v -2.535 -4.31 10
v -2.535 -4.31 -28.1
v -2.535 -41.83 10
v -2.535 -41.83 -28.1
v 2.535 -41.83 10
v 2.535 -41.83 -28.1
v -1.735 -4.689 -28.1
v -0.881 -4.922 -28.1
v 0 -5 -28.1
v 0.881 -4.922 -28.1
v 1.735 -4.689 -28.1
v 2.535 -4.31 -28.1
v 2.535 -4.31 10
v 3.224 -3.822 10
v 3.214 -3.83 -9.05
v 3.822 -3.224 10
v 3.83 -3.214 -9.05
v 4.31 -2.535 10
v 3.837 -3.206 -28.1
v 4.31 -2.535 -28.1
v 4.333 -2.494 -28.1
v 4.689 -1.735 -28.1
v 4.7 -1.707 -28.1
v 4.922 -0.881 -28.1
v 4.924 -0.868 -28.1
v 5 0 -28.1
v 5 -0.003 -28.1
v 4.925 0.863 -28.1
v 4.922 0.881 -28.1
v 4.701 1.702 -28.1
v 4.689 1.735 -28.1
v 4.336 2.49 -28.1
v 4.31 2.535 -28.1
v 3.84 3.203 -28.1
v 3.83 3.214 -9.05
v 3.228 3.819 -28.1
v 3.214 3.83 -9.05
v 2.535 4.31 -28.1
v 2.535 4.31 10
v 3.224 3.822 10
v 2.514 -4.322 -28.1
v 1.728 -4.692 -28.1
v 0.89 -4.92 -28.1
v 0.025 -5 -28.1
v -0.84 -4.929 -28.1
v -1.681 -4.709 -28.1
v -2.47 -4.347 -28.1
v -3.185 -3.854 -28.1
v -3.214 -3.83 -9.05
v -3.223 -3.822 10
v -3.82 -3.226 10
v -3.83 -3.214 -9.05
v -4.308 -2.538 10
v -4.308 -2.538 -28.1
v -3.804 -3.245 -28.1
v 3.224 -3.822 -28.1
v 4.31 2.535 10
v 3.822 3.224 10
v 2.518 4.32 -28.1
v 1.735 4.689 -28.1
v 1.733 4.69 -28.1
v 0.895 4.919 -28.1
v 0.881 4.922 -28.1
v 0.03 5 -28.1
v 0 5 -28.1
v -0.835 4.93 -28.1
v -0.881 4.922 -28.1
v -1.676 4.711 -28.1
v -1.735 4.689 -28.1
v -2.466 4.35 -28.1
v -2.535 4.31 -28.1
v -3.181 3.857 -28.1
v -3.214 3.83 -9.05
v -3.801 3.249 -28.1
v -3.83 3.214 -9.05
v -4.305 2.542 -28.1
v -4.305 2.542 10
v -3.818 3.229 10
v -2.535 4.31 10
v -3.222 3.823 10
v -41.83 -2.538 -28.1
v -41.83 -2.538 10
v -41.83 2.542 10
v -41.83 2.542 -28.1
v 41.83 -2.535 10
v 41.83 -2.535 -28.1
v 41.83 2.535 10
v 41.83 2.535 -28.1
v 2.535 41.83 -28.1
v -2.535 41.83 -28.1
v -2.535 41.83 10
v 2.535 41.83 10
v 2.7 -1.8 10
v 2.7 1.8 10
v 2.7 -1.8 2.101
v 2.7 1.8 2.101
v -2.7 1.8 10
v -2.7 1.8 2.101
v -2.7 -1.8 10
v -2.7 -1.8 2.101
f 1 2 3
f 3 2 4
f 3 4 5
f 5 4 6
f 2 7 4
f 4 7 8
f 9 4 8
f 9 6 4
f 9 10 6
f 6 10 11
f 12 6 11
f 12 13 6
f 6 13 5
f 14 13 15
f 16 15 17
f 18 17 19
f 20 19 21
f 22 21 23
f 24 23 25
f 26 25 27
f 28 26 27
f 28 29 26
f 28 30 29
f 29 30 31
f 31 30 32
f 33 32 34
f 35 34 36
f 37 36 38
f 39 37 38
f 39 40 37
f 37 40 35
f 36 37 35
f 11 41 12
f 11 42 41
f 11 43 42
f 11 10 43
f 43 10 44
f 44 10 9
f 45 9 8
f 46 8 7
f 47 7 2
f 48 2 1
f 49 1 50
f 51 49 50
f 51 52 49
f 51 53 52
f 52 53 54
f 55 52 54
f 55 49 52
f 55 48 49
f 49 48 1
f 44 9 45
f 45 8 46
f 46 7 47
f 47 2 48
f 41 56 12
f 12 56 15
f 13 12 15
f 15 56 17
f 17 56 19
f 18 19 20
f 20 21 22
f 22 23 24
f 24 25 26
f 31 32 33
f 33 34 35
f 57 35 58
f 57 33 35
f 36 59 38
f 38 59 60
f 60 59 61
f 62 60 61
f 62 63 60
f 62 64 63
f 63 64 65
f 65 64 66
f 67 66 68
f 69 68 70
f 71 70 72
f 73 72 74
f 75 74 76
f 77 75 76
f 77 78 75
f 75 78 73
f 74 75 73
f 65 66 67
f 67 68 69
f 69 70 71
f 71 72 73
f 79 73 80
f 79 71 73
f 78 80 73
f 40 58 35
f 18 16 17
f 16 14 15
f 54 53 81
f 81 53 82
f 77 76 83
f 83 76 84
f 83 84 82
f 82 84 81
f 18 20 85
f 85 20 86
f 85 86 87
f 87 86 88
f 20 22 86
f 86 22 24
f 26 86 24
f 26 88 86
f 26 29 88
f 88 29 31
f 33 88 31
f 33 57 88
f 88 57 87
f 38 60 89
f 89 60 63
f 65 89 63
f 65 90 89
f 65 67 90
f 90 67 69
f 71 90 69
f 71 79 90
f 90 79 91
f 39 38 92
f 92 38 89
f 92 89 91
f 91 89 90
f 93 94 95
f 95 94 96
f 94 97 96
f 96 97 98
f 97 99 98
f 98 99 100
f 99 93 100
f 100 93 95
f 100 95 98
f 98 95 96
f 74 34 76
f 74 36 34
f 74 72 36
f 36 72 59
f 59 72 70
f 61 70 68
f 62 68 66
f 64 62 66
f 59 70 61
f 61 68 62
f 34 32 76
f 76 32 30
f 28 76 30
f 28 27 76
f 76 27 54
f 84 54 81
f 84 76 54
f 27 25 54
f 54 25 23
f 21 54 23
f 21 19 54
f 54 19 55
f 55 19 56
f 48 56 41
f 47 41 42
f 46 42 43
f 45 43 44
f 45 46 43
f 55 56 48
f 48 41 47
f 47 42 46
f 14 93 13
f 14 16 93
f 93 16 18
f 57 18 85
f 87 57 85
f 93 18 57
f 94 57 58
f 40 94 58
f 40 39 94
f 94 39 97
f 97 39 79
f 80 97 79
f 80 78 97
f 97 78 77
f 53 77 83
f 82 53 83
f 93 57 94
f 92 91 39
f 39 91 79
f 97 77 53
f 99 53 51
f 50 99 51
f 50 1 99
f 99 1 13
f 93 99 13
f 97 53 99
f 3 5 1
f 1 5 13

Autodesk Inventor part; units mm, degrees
sketch "Sketch1" plane through (0, 0, 0) normal (0, 0, 1) x (1, 0, 0)
  circle A0 centre (0, 0) radius 5
  dimension "d0" = 10
extrude "Extrusion1" add sketch "Sketch1" along normal blind 10 and the other way blind 28.1
sketch "Sketch2" plane through (0, 0, 10) normal (0, 0, 1) x (1, 0, 0)
  line L0 (-2.7, -1.7996) -> (2.7, -1.7996)
  line L1 (2.7, -1.7996) -> (2.7, 1.7996)
  line L2 (2.7, 1.7996) -> (-2.7, 1.7996)
  line L3 (-2.7, 1.7996) -> (-2.7, -1.7996)
  line L4 (-2.7, -1.7996) -> (2.7, 1.7996) construction
  line L5 (2.7, -1.7996) -> (-2.7, 1.7996) construction
  point P0 (0, 0)
  dimension "d3" = 5.4
  dimension "d4" = 3.5992
extrude "Extrusion2" cut sketch "Sketch2" against normal blind 7.8994
ref_plane "Work Plane1" through (0, 0, 0) normal (0, 1, 0) x (0, 0, 1)
ref_plane "Work Plane2" through (0, 0, 0) normal (-1, 0, 0) x (0, 0, 1)
sketch "Sketch3" plane through (0, 0, 0) normal (0, 1, 0) x (0, 0, 1)
  point P0 (0, 0)
ref_plane "Work Plane3" through (0, 5, 0) normal (0, 1, 0) x (-1, 0, 0)
ref_plane "Work Plane4" through (0, -5, 0) normal (0, 1, 0) x (-1, 0, 0)
ref_plane "Work Plane5" through (-5, 0, 0) normal (-1, 0, 0) x (0, -1, 0)
ref_plane "Work Plane6" through (5, 0, 0) normal (-1, 0, 0) x (0, -1, 0)
sketch "Sketch4" plane through (0, 5, 0) normal (0, 1, 0) x (-1, 0, 0)
  point P0 (0, 0)
sketch "Sketch5" plane through (0, 5, 0) normal (0, 1, 0) x (-1, 0, 0)
  line L0 (5, 10) -> (-5, 10) projected
  line L1 (-2.5348, 10) -> (2.5348, 10)
  line L2 (2.5348, 10) -> (2.5348, -28.0998)
  line L3 (2.5348, -28.0998) -> (-2.5348, -28.0998)
  line L4 (-2.5348, -28.0998) -> (-2.5348, 10)
  point P0 (0, 0)
sketch "Sketch6" plane through (5, 0, 0) normal (-1, 0, 0) x (0, -1, 0)
  line L0 (-2.5348, 10) -> (2.5348, 10)
  line L1 (2.5348, 10) -> (2.5348, -28.0998)
  line L2 (2.5348, -28.0998) -> (-2.5348, -28.0998)
  line L3 (-2.5348, -28.0998) -> (-2.5348, 10)
  point P0 (0, 0)
sketch "Sketch7" plane through (0, -5, 0) normal (0, 1, 0) x (-1, 0, 0)
  point P0 (0, 0)
sketch "Sketch8" plane through (0, -5, 0) normal (0, 1, 0) x (-1, 0, 0)
  line L0 (-2.5348, 10) -> (2.5348, 10)
  line L1 (2.5348, 10) -> (2.5348, -28.0998)
  line L2 (2.5348, -28.0998) -> (-2.5348, -28.0998)
  line L3 (-2.5348, -28.0998) -> (-2.5348, 10)
  point P0 (0, 0)
sketch "Sketch9" plane through (0, -5, 0) normal (0, 1, 0) x (-1, 0, 0)
  point P0 (0, 0)
sketch "Sketch10" plane through (-5, 0, 0) normal (-1, 0, 0) x (0, -1, 0)
  line L0 (5, 10) -> (-5, 10) projected
  line L1 (-2.5422, 10) -> (2.5378, 10)
  line L2 (2.5378, 10) -> (2.5378, -28.1)
  line L3 (2.5378, -28.1) -> (-2.5422, -28.1)
  line L4 (-2.5422, -28.1) -> (-2.5422, 10)
  point P0 (0, 0)
  dimension "d9" = 5.08
  dimension "d10" = 38.1
extrude "Extrusion3" add sketch "Sketch5" along normal blind 36.83 and the other way blind 1.27
extrude "Extrusion4" add sketch "Sketch6" along normal blind 1.27 and the other way blind 36.83
extrude "Extrusion5" add sketch "Sketch10" along normal blind 36.83 and the other way blind 1.27
extrude "Extrusion6" add sketch "Sketch8" along normal blind 1.27 and the other way blind 36.83
properties part number "windmill"
